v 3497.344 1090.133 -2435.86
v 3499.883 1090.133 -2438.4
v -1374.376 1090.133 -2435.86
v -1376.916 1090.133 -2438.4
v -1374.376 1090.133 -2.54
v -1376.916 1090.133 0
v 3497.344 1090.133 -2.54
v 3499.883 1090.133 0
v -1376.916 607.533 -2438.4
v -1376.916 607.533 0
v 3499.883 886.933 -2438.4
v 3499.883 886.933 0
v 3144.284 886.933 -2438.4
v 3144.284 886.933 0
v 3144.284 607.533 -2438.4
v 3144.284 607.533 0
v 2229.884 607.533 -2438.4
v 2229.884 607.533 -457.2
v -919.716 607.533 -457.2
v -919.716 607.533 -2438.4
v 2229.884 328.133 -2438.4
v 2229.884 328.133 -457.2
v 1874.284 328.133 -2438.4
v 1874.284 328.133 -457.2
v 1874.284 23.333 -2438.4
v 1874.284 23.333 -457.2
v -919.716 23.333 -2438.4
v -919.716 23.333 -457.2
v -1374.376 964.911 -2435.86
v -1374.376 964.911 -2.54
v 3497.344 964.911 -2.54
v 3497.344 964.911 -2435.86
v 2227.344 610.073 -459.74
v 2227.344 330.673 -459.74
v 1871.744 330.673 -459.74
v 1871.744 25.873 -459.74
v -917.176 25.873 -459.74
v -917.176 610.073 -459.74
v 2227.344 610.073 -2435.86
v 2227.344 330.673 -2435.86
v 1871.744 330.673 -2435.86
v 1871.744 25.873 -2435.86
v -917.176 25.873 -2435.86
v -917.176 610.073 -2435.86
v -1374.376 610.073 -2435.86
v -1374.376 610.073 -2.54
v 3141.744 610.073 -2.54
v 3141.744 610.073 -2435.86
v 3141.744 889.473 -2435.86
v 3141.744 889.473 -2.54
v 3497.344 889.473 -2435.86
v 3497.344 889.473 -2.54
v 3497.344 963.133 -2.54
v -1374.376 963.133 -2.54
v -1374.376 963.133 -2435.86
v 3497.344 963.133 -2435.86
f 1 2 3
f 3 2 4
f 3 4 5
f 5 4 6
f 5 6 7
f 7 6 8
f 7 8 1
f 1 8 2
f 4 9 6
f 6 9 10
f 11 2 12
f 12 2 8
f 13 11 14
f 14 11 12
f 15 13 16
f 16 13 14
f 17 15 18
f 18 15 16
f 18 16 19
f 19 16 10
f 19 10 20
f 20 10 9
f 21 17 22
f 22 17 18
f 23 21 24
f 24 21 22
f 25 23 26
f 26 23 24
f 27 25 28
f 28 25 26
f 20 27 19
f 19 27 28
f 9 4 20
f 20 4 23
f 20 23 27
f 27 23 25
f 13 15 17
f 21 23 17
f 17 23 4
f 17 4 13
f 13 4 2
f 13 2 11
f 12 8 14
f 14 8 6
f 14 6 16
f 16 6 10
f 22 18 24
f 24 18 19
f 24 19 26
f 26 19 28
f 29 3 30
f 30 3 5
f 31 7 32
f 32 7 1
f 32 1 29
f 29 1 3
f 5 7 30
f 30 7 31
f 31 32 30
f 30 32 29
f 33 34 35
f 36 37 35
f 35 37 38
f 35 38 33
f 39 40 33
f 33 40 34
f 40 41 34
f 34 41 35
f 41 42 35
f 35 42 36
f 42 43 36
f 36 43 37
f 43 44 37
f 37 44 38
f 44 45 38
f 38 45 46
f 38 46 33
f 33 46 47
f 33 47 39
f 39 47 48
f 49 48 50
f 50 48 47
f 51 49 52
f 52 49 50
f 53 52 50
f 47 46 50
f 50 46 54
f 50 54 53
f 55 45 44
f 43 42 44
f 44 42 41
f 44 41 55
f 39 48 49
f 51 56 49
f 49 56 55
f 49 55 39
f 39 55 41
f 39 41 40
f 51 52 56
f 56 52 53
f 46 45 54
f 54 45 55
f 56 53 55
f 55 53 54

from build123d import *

# Parameters (mm, degrees)
BOSS_EXTRUDE1_DEPTH = 2438.4
SKETCH4_W           = 457.2
SKETCH4_H           = 584.2
CUT_EXTRUDE1_DEPTH  = 3810
SHELL1_T            = -2.54
SKETCH3_W           = 4871.72
SKETCH3_H           = 2433.32
BOSS_EXTRUDE3_DEPTH = 1.778


with BuildPart() as part:
    # Sketch1 → Boss-Extrude1 (new body)
    with BuildSketch(Plane.XY):
        Polygon((-1376.91627907, 1090.13255814), (3499.88372093, 1090.13255814), (3499.88372093, 886.93255814), (3144.28372093, 886.93255814), (3144.28372093, 607.53255814), (2229.88372093, 607.53255814), (2229.88372093, 328.13255814), (1874.28372093, 328.13255814), (1874.28372093, 23.33255814), (-919.71627907, 23.33255814), (-919.71627907, 607.53255814), (-1376.91627907, 607.53255814), align=None)
    extrude(amount=-BOSS_EXTRUDE1_DEPTH)

    # Sketch4 → Cut-Extrude1 (cut)
    with BuildSketch(Plane.ZY.offset(919.71627907)):
        with Locations((-228.6, 315.43255814)):
            Rectangle(SKETCH4_W, SKETCH4_H)
    extrude(amount=-CUT_EXTRUDE1_DEPTH, mode=Mode.SUBTRACT)

    # Shell1
    shell1_openings = [part.faces().sort_by_distance(p)[0] for p in [
        (1061.48372093, 1090.13255814, -1219.2),
    ]]
    offset(amount=SHELL1_T, openings=shell1_openings, kind=Kind.INTERSECTION)

    # Sketch3 → Boss-Extrude3 (add)
    with BuildSketch(Plane(origin=(0, 963.13255814, 0), x_dir=(1, 0, 0), z_dir=(0, 1, 0))):
        with Locations((1061.48372093, 1219.2)):
            Rectangle(SKETCH3_W, SKETCH3_H)
    extrude(amount=BOSS_EXTRUDE3_DEPTH)


solid = part.part
